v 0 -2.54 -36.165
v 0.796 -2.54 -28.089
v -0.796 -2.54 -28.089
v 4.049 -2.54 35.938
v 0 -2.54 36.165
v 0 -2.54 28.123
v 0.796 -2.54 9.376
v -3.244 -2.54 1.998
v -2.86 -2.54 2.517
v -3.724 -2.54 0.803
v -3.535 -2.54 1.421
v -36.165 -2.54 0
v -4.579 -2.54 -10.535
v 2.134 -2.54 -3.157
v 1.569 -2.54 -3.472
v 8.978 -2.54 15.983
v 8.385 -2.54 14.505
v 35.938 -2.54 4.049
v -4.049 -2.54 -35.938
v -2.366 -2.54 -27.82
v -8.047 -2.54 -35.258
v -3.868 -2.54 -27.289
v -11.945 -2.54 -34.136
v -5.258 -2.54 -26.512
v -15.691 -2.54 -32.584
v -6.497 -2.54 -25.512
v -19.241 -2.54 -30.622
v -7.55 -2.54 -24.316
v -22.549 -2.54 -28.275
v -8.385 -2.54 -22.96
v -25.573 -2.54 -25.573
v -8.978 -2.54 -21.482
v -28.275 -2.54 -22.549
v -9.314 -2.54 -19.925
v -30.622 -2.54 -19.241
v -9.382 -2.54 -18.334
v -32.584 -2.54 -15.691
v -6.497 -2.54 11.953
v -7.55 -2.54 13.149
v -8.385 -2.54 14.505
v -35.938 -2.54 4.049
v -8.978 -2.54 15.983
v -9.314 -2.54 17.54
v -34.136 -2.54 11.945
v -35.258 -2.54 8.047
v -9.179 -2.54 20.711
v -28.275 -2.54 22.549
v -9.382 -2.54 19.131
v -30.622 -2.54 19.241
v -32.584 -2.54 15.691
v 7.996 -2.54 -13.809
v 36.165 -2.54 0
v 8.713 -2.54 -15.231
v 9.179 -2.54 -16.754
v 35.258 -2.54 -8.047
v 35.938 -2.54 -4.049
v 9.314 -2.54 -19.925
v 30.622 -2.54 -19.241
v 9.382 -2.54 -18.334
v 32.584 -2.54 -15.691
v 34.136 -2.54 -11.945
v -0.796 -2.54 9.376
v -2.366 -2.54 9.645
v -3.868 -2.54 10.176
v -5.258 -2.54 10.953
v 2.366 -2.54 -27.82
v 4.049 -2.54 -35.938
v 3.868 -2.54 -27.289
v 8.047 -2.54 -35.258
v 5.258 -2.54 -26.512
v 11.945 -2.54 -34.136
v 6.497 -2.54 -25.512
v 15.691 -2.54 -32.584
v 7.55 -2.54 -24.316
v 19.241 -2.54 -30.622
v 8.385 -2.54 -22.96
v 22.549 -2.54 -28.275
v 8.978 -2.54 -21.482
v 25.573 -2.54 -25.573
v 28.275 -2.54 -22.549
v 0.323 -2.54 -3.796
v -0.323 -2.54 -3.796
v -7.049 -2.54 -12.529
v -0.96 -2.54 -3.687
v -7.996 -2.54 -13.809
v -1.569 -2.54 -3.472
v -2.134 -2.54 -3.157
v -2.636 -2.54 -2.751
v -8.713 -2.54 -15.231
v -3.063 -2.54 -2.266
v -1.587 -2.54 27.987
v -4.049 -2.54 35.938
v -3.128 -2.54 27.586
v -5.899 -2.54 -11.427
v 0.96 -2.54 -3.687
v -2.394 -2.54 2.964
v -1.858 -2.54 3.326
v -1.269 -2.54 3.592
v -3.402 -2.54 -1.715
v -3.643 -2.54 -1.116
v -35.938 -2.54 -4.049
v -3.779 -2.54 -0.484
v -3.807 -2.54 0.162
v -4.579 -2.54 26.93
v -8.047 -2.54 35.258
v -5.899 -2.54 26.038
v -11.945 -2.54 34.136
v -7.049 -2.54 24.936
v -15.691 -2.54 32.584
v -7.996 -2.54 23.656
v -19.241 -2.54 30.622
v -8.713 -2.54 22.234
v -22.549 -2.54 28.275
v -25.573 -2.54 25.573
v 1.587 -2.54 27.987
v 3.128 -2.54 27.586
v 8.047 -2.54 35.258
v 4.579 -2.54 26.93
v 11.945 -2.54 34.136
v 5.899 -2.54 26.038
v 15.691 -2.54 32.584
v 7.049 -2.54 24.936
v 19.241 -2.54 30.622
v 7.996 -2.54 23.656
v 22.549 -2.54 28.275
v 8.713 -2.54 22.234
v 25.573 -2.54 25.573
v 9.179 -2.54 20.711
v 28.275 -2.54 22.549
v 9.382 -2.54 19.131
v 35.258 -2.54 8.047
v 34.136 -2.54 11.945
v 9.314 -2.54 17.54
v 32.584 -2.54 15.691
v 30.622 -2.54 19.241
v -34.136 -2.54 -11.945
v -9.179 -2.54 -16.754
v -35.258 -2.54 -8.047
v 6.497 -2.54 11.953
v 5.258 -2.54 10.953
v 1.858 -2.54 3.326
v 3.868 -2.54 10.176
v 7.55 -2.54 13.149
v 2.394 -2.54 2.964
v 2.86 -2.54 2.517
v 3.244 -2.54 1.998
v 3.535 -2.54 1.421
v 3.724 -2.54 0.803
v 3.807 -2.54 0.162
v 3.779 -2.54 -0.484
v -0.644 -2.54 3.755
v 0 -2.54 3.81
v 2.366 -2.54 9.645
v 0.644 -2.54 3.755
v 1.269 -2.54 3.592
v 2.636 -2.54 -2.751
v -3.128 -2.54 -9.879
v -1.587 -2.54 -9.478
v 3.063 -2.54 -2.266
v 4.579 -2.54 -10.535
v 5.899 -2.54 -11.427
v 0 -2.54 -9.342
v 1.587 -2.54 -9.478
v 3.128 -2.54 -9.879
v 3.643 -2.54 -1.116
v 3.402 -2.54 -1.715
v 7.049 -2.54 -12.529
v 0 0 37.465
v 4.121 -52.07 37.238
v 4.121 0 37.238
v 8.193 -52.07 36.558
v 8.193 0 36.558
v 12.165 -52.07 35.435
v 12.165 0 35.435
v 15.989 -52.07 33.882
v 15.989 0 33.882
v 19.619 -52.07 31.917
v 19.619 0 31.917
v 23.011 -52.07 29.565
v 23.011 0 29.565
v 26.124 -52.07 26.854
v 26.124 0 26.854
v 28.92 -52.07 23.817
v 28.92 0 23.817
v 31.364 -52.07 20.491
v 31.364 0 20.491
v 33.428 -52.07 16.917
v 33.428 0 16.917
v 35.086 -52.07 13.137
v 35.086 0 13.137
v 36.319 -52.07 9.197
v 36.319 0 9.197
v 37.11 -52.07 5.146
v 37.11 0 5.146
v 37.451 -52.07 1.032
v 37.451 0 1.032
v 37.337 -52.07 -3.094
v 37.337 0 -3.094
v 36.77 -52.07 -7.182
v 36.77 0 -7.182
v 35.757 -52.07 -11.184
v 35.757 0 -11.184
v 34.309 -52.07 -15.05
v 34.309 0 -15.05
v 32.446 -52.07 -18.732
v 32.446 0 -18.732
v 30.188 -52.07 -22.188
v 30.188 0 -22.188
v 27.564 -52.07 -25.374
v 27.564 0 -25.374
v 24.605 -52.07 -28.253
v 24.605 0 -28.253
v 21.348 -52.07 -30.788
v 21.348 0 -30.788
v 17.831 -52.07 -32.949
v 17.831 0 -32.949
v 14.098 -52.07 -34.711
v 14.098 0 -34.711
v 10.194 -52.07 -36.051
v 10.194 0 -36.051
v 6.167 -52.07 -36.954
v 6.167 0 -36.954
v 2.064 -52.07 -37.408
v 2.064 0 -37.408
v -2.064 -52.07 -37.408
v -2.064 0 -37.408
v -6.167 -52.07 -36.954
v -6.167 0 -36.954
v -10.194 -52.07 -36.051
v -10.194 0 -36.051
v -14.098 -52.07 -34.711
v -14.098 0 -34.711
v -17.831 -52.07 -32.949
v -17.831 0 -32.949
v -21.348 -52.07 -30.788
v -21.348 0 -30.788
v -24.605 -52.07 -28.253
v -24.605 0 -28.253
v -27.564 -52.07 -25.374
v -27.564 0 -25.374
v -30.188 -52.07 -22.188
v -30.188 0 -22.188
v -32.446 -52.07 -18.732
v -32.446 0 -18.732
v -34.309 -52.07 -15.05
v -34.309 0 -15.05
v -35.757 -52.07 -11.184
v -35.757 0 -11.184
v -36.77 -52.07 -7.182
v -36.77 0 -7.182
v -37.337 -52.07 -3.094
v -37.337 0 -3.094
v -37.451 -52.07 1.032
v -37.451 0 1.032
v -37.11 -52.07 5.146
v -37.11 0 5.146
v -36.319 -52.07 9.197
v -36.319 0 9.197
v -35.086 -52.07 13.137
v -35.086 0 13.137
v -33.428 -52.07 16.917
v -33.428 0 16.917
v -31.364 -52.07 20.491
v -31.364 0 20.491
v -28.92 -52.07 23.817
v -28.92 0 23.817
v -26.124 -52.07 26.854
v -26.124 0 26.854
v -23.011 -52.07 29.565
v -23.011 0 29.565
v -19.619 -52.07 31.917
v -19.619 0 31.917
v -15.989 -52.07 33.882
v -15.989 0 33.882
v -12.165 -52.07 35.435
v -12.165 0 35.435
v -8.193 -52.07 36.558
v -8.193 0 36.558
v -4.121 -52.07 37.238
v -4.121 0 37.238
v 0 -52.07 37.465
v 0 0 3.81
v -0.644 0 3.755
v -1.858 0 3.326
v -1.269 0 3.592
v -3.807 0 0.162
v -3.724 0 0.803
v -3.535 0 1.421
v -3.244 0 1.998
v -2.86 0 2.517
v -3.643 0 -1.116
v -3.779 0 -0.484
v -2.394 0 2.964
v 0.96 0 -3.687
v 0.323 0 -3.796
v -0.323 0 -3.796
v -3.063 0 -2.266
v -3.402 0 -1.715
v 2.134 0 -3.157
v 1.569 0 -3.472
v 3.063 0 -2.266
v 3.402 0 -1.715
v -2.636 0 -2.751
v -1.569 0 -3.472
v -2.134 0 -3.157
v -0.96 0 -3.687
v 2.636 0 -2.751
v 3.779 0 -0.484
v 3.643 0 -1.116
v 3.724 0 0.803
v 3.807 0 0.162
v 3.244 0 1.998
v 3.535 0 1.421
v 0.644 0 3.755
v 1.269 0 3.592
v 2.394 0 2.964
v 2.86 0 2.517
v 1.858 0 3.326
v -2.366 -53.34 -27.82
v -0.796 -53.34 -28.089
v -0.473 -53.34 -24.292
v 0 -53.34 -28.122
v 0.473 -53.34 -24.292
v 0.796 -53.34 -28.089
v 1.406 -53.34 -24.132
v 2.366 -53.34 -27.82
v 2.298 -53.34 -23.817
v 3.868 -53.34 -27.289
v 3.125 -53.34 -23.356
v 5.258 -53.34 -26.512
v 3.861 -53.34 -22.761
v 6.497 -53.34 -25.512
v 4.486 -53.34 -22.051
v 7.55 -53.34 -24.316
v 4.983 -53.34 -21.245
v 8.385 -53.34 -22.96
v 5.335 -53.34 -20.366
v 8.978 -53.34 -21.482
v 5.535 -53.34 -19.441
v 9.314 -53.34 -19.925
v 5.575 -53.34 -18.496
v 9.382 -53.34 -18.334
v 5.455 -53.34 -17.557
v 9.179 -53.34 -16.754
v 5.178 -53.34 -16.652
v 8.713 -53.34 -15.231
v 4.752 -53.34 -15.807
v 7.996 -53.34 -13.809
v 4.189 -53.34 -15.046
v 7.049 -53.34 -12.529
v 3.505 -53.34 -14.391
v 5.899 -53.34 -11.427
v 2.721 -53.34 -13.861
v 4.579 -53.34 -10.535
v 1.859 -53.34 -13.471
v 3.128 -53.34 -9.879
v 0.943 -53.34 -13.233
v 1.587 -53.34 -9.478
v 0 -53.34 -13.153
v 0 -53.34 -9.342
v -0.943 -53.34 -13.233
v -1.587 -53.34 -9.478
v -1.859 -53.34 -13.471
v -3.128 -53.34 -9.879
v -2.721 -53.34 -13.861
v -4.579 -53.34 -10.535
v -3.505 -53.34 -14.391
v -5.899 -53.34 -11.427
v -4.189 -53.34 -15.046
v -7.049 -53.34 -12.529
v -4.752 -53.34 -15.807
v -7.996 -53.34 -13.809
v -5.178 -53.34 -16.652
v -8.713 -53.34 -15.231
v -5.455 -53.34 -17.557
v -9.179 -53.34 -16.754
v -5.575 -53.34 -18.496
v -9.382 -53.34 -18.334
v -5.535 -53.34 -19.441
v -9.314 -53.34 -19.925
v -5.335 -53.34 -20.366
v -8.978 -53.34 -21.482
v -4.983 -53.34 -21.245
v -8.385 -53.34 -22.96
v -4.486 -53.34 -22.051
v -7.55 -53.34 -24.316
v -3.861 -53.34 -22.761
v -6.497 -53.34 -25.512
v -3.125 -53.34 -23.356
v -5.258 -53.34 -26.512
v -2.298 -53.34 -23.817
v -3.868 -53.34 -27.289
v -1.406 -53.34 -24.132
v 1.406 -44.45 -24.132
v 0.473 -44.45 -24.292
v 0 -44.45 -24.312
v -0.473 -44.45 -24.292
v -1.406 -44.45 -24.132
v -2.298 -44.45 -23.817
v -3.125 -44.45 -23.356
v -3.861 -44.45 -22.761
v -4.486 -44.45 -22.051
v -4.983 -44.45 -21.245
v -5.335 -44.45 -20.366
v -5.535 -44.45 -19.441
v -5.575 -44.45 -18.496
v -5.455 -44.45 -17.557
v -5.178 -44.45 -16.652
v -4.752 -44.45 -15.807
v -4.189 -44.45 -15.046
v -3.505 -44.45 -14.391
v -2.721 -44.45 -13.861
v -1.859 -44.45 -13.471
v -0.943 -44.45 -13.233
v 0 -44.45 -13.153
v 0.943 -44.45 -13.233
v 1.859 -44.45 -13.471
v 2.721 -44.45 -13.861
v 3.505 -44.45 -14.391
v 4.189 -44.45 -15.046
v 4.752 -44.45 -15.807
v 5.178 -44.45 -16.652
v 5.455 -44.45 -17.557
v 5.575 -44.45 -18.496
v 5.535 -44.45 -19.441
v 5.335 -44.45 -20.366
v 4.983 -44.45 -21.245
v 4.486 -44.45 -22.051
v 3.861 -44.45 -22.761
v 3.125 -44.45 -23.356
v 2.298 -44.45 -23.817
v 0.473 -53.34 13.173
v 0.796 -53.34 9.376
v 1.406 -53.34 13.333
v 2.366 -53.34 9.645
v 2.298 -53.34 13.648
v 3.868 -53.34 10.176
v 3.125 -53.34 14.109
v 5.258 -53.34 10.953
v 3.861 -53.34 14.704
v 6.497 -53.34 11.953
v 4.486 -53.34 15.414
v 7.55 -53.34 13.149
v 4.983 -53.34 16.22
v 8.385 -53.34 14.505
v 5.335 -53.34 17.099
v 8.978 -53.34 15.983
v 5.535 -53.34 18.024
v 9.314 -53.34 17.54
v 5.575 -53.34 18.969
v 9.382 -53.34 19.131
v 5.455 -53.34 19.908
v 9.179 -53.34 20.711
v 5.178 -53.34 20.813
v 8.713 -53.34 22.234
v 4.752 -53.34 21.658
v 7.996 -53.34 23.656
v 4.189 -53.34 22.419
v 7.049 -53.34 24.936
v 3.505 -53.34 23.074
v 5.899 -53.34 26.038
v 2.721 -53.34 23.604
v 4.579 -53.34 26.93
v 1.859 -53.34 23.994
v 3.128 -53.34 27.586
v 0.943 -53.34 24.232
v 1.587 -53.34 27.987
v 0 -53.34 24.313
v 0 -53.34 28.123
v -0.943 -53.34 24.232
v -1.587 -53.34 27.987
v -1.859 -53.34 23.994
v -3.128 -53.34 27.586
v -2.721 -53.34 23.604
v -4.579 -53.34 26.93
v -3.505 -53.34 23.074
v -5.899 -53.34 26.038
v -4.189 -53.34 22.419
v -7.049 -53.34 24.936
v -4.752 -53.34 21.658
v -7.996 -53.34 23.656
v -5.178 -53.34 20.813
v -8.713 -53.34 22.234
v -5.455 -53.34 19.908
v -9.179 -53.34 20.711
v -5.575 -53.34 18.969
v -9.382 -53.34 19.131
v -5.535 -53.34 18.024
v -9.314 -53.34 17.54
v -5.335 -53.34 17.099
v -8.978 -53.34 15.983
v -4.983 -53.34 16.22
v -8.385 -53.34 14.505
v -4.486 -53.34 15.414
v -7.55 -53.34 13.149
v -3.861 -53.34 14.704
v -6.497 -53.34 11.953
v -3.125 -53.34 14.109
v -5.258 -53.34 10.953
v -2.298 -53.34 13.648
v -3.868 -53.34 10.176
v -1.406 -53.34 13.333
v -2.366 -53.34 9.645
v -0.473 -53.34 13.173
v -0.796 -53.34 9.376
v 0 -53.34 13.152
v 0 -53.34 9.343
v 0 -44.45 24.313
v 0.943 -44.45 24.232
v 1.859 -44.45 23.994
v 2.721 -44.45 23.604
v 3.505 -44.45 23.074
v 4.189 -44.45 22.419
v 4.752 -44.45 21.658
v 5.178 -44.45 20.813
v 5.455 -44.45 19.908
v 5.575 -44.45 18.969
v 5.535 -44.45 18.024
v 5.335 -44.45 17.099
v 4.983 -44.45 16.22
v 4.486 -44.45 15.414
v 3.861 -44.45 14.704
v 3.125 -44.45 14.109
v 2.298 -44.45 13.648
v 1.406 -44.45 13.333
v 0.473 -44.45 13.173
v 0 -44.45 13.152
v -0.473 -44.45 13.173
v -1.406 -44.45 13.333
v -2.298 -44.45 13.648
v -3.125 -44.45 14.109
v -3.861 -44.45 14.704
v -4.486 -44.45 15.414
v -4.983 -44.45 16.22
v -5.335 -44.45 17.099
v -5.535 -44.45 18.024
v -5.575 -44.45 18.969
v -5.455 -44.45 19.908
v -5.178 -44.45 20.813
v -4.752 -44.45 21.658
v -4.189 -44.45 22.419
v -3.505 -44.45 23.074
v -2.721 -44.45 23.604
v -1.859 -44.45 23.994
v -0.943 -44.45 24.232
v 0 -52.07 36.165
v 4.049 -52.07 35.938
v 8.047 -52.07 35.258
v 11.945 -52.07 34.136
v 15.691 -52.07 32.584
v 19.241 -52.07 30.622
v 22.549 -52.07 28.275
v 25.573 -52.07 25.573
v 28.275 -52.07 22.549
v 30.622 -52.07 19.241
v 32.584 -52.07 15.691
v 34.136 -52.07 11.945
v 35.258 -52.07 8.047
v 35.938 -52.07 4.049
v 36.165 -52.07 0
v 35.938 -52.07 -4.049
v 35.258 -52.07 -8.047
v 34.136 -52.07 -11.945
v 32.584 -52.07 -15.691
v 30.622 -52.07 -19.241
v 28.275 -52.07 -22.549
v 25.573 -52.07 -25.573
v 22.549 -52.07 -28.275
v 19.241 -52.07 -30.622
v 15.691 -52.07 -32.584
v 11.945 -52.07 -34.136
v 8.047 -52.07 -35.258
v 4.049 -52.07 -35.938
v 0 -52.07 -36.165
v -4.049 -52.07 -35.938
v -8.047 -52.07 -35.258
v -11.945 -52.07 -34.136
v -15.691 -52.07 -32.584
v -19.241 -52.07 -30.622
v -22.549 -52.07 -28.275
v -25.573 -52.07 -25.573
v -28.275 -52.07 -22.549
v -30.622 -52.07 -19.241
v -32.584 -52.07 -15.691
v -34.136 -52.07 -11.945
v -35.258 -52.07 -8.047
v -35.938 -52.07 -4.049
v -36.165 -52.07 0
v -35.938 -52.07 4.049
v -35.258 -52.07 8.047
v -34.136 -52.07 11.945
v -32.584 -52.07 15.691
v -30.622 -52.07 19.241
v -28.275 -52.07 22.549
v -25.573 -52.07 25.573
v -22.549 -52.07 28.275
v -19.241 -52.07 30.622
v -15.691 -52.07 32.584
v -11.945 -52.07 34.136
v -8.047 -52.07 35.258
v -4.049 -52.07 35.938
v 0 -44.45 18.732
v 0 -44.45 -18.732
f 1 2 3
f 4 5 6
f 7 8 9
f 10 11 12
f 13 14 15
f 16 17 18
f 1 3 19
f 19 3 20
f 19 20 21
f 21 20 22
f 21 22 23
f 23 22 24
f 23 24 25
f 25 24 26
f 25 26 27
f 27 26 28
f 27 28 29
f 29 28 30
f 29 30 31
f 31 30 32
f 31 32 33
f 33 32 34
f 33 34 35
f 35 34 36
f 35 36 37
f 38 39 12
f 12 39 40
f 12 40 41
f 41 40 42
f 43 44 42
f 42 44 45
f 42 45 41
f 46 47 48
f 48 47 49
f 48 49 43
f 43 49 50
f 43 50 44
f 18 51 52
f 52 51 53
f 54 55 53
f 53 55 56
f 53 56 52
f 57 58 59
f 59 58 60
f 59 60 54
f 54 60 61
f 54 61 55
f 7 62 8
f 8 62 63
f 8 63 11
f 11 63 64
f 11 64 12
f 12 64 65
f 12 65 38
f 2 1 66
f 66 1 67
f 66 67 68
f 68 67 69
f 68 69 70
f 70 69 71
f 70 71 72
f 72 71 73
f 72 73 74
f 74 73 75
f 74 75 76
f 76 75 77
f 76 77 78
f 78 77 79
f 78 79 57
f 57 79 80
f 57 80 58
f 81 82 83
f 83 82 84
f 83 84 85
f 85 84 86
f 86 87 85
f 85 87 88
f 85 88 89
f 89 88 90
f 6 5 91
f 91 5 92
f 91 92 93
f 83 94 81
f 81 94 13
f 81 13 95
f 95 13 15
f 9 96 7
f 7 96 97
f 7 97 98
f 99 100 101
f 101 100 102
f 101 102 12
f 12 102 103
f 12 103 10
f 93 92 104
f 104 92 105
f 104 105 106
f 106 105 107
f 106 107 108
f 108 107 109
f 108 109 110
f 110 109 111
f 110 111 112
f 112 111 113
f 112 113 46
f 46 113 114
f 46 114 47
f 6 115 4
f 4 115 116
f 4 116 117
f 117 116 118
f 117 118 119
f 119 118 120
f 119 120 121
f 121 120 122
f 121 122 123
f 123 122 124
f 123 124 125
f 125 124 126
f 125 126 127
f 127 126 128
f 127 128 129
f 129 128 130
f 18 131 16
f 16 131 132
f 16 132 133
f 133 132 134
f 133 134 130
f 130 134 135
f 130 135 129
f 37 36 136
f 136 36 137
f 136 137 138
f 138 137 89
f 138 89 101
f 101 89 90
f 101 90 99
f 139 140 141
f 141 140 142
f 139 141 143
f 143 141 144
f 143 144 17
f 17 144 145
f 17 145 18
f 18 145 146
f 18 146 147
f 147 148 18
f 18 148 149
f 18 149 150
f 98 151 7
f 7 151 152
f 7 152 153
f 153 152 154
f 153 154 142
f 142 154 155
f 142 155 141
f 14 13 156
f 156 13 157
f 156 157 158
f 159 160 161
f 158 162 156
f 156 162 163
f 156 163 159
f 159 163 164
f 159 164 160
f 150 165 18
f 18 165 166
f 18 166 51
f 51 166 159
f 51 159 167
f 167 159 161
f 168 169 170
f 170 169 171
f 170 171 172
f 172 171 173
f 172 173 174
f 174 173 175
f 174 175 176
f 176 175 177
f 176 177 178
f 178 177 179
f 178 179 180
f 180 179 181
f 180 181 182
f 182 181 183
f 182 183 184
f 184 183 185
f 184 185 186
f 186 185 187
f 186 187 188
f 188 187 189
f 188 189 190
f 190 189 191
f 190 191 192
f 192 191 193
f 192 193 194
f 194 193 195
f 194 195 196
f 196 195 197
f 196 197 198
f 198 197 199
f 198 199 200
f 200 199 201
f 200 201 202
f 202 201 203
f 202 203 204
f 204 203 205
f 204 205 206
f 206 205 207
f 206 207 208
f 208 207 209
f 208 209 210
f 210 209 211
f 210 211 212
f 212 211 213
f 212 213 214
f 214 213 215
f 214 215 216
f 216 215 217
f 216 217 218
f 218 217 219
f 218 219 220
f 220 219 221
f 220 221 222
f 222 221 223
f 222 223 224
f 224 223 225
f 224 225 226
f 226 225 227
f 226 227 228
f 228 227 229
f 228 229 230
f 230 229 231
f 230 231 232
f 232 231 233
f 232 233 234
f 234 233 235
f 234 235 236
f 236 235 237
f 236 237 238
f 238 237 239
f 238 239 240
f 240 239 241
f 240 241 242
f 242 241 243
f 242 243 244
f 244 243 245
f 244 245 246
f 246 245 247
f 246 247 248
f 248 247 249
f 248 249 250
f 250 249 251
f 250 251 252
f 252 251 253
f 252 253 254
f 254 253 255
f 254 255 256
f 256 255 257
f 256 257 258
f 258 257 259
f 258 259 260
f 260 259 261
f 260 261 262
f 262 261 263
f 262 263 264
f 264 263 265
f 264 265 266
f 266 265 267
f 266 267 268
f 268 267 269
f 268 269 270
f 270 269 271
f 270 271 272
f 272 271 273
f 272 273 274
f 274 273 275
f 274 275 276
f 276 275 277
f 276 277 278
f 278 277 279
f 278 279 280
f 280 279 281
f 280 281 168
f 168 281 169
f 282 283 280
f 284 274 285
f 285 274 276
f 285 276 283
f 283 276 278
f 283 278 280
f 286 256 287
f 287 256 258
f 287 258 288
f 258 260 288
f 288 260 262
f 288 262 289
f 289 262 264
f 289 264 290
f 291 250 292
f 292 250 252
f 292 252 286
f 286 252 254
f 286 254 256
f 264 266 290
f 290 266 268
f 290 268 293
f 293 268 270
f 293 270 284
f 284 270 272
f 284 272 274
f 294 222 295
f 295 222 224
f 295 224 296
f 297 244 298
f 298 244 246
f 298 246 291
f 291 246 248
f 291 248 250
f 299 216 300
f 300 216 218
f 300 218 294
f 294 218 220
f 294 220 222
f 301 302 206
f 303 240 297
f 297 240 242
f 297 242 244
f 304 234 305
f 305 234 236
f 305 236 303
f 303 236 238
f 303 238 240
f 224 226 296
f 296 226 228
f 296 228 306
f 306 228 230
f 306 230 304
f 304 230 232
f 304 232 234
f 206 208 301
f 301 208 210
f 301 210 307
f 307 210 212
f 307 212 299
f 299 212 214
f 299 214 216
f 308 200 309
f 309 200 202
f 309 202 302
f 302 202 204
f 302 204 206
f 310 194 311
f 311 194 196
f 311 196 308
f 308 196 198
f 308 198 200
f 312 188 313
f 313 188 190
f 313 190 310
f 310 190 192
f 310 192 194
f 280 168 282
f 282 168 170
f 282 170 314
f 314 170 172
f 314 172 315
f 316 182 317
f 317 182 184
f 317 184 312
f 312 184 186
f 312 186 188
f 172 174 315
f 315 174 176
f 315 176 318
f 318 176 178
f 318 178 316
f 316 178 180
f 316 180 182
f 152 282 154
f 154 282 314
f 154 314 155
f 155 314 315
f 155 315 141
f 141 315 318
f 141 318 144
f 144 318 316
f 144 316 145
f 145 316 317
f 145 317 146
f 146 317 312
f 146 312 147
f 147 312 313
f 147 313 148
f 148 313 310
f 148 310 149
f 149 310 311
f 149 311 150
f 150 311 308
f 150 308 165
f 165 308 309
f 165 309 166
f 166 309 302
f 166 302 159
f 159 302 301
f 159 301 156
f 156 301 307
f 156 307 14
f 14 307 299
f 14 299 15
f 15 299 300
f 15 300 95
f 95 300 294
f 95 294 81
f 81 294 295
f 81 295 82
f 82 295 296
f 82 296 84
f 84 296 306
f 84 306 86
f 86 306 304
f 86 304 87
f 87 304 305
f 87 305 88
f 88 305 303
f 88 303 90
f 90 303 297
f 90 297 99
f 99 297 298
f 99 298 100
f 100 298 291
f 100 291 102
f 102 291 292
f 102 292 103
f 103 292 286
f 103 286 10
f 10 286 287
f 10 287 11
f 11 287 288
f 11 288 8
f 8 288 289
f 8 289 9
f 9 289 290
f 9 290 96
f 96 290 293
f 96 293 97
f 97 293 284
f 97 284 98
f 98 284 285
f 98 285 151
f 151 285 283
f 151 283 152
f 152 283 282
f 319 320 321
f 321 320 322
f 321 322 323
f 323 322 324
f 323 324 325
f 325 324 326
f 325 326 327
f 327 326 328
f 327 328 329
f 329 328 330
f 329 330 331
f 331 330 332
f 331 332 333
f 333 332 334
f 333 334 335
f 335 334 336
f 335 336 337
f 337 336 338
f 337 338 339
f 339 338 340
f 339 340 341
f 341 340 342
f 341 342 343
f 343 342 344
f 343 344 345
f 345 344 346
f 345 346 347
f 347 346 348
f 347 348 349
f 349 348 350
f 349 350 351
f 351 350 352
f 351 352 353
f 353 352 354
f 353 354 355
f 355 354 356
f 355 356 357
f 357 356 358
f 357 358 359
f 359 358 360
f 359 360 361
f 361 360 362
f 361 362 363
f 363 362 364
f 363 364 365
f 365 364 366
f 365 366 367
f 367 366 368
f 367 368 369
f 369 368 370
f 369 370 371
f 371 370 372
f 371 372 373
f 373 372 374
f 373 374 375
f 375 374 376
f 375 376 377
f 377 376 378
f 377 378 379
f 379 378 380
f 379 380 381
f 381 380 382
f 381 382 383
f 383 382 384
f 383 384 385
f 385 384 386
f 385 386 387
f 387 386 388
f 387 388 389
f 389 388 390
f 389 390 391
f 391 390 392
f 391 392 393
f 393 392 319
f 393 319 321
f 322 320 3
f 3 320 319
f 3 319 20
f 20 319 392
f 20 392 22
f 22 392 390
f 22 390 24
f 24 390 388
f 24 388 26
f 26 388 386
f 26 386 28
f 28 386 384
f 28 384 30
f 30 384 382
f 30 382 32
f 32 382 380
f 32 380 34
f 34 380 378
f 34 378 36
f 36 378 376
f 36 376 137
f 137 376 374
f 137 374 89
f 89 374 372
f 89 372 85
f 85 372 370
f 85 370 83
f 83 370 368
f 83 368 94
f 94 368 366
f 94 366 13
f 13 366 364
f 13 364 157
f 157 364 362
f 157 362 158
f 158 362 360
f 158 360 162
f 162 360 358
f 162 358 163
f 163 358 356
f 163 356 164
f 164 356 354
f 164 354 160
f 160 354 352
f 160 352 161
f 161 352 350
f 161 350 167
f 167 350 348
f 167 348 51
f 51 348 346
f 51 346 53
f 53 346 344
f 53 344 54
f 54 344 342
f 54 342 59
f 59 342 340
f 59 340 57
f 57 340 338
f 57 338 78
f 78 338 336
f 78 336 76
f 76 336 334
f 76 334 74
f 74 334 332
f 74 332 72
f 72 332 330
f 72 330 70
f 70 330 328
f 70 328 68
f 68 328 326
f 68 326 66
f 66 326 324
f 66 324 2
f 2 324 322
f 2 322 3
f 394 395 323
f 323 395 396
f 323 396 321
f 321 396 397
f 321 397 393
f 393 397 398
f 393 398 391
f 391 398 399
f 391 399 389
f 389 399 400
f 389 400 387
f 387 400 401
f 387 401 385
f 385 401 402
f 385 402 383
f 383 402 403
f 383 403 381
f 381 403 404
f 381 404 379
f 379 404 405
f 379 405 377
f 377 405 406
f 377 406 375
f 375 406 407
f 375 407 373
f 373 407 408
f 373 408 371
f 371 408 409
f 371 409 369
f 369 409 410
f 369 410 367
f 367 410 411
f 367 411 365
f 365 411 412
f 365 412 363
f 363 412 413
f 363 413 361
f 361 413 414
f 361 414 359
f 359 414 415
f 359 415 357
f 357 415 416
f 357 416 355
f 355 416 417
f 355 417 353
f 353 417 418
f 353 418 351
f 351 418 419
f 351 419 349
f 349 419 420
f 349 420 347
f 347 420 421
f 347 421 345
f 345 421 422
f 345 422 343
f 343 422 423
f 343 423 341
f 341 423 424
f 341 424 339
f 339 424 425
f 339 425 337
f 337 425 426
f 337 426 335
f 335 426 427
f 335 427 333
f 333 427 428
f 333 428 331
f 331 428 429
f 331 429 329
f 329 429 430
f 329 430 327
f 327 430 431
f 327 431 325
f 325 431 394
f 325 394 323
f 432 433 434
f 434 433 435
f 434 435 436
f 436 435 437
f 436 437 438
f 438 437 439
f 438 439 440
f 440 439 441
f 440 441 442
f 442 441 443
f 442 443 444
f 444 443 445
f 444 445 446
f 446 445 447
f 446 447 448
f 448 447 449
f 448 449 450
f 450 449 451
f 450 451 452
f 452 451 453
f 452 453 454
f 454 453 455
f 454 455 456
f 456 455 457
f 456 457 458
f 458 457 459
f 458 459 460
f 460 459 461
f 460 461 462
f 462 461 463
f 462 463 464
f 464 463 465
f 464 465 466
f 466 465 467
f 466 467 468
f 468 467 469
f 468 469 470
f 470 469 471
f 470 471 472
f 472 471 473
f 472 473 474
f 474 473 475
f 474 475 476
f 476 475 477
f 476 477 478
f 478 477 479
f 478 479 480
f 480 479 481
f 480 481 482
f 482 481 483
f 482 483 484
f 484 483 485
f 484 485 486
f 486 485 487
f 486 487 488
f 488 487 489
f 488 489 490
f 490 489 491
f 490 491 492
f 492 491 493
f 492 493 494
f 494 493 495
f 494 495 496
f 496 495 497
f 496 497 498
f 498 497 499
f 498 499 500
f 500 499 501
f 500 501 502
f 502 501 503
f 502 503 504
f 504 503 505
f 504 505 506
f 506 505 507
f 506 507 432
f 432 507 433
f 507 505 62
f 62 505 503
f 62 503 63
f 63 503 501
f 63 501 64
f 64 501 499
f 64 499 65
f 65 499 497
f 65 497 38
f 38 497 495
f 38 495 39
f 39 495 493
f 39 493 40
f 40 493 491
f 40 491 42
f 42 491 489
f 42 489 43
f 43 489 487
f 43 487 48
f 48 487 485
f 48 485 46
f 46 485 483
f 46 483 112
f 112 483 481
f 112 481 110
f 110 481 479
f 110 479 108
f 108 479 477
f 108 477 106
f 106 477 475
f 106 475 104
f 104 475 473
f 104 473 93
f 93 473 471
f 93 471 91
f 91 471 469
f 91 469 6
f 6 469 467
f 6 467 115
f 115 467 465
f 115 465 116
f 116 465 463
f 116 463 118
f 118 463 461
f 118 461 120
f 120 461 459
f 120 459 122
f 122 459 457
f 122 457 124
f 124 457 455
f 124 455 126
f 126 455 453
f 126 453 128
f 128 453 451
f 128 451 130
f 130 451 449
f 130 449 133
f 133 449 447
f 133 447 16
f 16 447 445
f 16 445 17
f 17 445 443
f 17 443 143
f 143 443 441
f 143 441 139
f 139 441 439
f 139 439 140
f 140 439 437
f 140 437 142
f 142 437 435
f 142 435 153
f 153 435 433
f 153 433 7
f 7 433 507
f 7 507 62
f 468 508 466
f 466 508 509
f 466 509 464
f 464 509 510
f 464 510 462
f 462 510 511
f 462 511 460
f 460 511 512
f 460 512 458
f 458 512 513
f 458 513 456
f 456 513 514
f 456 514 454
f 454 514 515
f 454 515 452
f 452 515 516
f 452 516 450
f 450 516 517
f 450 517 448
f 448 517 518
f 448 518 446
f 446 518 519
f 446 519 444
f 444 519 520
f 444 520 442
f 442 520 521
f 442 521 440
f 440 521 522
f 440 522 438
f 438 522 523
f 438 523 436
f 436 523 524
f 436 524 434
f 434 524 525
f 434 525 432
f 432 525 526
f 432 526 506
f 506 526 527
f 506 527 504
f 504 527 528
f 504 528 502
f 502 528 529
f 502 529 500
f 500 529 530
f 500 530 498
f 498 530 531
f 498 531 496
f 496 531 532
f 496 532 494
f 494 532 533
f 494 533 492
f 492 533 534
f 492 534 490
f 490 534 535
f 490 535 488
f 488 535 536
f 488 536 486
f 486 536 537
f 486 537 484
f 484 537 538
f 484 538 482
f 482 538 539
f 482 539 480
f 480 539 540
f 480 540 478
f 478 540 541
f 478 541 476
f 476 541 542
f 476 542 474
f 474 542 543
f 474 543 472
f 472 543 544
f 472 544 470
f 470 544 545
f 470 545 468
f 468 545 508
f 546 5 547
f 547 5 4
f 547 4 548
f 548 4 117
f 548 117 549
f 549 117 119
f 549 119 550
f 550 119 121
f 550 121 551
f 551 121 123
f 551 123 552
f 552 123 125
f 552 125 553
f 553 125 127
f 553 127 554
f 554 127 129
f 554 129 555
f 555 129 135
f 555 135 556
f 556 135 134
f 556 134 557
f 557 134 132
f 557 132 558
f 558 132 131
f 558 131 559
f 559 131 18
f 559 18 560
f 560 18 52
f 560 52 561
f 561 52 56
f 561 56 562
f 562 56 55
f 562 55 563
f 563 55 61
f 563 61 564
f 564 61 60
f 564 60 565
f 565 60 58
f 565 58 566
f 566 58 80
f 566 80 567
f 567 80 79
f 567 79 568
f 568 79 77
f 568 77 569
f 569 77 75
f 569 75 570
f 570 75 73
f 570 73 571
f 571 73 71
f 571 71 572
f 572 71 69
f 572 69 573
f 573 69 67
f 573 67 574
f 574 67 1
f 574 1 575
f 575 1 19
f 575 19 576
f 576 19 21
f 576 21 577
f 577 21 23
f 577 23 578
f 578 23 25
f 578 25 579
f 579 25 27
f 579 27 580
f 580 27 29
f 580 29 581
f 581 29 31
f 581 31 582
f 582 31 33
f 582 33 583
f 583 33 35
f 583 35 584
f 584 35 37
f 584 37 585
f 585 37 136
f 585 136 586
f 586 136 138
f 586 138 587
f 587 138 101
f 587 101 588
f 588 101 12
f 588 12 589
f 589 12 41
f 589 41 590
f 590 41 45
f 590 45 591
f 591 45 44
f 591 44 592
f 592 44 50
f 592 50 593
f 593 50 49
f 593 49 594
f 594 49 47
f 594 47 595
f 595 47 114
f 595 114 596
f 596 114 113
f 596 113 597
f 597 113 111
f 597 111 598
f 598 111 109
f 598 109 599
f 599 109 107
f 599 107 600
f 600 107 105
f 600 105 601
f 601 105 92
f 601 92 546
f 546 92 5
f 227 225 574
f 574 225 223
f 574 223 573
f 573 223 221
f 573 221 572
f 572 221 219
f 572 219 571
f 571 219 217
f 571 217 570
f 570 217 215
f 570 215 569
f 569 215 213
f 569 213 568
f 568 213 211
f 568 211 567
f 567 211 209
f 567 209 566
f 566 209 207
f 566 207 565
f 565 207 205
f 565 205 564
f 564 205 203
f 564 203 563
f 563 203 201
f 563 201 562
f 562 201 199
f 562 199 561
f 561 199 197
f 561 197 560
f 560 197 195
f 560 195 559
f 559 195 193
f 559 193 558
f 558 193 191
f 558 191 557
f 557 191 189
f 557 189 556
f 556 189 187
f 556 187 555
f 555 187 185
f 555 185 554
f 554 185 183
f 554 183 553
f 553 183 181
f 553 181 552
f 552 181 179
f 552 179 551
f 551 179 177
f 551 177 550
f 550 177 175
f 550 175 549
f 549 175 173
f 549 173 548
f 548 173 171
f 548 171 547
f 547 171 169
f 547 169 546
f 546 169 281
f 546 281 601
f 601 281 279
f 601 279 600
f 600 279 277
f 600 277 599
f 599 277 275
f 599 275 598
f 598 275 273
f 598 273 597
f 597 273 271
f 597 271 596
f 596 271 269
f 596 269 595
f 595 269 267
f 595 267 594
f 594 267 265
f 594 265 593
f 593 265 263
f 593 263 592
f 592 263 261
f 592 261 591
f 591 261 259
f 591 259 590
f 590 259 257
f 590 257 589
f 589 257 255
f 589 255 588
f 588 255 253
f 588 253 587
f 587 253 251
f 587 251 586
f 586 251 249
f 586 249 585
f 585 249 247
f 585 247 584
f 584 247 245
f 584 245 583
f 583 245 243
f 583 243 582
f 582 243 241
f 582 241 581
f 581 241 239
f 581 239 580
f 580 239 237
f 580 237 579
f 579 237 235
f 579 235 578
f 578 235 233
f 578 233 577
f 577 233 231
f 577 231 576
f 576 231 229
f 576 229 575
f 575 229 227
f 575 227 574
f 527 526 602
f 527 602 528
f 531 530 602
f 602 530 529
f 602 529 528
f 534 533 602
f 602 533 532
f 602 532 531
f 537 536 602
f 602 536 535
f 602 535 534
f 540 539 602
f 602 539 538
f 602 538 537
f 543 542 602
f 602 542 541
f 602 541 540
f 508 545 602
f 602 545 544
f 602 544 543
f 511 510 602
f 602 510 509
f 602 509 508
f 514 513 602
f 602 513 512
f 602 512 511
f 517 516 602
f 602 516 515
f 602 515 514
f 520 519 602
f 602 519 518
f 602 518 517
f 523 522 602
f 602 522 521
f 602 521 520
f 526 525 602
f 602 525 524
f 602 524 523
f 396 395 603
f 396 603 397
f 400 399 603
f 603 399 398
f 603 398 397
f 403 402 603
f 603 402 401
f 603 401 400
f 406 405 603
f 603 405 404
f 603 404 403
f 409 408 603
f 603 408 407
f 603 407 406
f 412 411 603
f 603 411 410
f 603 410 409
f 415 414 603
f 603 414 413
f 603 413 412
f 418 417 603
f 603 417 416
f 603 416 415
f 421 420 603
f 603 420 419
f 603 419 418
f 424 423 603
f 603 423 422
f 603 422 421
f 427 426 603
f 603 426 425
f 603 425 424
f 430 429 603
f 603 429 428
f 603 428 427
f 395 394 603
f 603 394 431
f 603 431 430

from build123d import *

# Parameters (mm, degrees)
SKETCH1_R           = 37.465
SKETCH1_R_2         = 3.81
BOSS_EXTRUDE1_DEPTH = 2.54
SKETCH2_R           = 9.39
SKETCH2_R_2         = 5.58
BOSS_EXTRUDE2_DEPTH = 50.8
SKETCH3_R           = 37.465
SKETCH3_R_2         = 36.165
BOSS_EXTRUDE3_DEPTH = 49.53
SKETCH5_R           = 5.58
BOSS_EXTRUDE4_DEPTH = 41.91


with BuildPart() as part:
    # Sketch1 → Boss-Extrude1 (new body)
    with BuildSketch(Plane(origin=(0, 0, 0), x_dir=(1, 0, 0), z_dir=(0, 1, 0))):
        with Locations(Location((0, 0, 0), (0, 0, 270))):
            Circle(SKETCH1_R)
        with Locations(Location((0, 0, 0), (0, 0, 270))):
            Circle(SKETCH1_R_2, mode=Mode.SUBTRACT)
    extrude(amount=-BOSS_EXTRUDE1_DEPTH)

    # Sketch2 → Boss-Extrude2 (add)
    # profile 1 of 2: a face of its own
    with BuildSketch(Plane.XZ.offset(2.54)):
        with Locations(Location((0, 18.7325, 0), (0, 0, 90))):
            Circle(SKETCH2_R)
        with Locations(Location((0, 18.7325, 0), (0, 0, 270))):
            Circle(SKETCH2_R_2, mode=Mode.SUBTRACT)
    # profile 2 of 2: a face of its own
    with BuildSketch(Plane.XZ.offset(2.54)):
        with Locations(Location((0, -18.7325, 0), (0, 0, 90))):
            Circle(SKETCH2_R)
        with Locations(Location((0, -18.7325, 0), (0, 0, 90))):
            Circle(SKETCH2_R_2, mode=Mode.SUBTRACT)
    extrude(amount=BOSS_EXTRUDE2_DEPTH)

    # Sketch3 → Boss-Extrude3 (add)
    with BuildSketch(Plane.XZ.offset(2.54)):
        with Locations(Location((0, 0, 0), (0, 0, 90))):
            Circle(SKETCH3_R)
        with Locations(Location((0, 0, 0), (0, 0, 90))):
            Circle(SKETCH3_R_2, mode=Mode.SUBTRACT)
    extrude(amount=BOSS_EXTRUDE3_DEPTH)

    # Sketch5 → Boss-Extrude4 (add)
    with BuildSketch(Plane.XZ.offset(2.54)):
        with Locations(Location((0, 18.7325, 0), (0, 0, 270))):
            Circle(SKETCH5_R)
        with Locations(Location((0, -18.7325, 0), (0, 0, 90))):
            Circle(SKETCH5_R)
    extrude(amount=BOSS_EXTRUDE4_DEPTH)


solid = part.part
